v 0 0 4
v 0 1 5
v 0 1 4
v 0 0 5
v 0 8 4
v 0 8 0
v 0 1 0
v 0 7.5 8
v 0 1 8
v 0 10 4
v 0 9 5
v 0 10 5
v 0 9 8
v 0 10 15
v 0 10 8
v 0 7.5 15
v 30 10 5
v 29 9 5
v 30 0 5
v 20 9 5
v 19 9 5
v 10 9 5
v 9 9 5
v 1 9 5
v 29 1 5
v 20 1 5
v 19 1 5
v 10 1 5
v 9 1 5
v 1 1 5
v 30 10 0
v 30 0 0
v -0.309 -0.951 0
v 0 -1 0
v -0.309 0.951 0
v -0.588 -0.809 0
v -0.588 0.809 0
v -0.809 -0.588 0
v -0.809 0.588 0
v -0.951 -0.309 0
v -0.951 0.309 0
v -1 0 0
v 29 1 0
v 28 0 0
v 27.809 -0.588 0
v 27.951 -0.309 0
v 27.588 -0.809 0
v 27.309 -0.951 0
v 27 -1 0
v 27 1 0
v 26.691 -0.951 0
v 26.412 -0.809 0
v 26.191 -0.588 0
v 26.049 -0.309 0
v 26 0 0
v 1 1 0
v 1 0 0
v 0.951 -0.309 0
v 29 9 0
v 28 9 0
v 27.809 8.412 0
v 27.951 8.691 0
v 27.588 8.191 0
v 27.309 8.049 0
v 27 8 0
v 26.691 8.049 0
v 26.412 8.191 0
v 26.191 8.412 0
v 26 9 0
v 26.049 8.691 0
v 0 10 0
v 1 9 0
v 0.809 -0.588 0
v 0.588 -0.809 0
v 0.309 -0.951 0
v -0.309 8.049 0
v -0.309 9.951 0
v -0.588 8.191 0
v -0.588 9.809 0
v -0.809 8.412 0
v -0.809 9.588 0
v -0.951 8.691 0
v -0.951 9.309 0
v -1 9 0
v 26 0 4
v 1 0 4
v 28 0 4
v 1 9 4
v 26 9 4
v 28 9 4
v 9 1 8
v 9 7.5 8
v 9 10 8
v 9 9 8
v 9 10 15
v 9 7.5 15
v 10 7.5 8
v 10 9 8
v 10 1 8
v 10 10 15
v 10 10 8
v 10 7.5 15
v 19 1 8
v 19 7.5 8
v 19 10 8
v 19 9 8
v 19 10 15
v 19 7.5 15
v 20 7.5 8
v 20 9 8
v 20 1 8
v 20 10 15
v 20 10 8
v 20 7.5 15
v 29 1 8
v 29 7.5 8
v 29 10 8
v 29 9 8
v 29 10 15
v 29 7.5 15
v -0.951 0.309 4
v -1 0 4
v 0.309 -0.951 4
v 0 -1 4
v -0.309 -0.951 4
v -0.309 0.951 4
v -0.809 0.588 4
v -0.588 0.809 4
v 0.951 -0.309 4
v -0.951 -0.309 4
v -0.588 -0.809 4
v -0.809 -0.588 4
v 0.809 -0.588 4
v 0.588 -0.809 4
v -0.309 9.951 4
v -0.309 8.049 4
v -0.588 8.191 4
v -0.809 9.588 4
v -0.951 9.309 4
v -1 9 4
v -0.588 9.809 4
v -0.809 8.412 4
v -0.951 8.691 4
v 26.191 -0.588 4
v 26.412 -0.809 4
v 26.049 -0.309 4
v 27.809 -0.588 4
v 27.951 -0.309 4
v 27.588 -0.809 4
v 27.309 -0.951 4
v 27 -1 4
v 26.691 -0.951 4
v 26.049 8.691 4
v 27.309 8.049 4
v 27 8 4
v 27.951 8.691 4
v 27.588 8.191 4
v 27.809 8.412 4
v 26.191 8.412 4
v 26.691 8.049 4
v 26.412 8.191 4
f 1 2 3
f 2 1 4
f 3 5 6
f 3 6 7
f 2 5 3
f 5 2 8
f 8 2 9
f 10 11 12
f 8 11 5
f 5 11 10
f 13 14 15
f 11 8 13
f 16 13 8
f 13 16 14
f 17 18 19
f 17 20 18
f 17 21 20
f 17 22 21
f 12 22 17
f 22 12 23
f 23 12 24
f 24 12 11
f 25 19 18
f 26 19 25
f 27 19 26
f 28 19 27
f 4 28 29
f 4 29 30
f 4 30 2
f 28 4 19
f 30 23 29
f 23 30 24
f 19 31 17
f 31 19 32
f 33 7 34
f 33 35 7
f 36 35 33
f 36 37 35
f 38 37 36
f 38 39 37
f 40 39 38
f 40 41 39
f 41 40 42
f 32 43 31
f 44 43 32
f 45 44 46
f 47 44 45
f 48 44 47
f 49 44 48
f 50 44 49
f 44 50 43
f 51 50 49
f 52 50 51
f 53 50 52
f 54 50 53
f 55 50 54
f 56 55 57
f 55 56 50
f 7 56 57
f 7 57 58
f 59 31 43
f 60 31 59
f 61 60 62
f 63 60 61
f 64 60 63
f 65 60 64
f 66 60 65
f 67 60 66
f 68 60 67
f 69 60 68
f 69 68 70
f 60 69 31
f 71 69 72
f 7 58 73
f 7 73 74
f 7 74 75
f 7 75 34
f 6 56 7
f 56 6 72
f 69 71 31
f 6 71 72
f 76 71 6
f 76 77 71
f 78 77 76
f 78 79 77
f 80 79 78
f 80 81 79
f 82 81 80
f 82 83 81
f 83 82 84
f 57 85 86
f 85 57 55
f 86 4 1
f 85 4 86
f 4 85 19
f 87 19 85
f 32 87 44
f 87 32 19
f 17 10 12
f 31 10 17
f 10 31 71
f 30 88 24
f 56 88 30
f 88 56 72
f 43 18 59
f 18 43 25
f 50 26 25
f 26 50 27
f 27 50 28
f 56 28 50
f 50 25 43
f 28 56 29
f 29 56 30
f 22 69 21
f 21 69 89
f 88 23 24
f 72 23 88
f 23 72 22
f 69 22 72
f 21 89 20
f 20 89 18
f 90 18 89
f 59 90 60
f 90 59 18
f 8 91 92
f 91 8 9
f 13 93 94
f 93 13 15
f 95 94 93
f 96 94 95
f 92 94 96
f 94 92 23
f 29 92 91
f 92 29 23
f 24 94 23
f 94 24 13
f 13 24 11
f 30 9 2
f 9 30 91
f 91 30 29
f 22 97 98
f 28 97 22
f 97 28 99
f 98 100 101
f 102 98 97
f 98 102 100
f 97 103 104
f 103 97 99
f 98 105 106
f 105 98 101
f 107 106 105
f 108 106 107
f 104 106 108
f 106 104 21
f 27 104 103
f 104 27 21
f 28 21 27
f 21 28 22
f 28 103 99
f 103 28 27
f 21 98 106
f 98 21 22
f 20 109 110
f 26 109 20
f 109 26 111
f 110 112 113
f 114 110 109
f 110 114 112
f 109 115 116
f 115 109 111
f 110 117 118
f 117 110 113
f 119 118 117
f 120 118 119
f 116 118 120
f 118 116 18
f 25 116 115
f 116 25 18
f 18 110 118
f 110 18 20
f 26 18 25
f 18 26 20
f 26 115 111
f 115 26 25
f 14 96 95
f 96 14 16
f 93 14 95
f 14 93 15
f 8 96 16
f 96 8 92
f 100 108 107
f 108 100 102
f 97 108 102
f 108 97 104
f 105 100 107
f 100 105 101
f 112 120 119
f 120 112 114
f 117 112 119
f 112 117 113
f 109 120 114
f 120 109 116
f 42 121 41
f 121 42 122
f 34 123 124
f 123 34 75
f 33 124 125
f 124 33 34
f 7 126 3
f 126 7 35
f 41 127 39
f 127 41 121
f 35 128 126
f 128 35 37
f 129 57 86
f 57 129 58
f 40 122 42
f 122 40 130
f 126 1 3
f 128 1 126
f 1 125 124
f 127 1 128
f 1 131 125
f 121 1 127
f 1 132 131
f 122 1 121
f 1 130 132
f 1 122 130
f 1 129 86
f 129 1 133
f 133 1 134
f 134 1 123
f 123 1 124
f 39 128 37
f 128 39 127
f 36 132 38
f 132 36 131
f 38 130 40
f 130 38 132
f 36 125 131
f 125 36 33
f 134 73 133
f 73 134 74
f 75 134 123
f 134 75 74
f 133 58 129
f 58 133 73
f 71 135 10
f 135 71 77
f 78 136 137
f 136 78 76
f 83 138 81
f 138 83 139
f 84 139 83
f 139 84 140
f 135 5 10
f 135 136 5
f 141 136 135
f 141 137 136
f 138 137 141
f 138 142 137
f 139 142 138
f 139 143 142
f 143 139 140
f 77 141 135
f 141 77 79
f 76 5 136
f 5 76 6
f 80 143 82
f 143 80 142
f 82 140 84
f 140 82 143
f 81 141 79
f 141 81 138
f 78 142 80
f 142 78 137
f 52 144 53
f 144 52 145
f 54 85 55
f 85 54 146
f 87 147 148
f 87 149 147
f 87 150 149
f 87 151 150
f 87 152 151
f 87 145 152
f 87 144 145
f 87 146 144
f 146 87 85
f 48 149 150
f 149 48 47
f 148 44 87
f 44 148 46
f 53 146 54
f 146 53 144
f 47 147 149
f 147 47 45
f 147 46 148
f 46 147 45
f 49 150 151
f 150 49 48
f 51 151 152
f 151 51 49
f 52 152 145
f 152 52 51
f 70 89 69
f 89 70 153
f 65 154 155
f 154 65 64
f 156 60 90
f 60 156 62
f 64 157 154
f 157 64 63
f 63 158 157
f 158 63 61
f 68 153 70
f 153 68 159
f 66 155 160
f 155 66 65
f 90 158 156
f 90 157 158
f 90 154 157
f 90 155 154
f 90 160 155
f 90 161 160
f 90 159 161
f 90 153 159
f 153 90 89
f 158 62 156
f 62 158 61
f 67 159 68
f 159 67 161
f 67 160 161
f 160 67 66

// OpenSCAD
module couchFrame() {
    difference() {
        // Couch base
        cube([30, 10, 5]);

        // Carve out the bottom part for legs space
        translate([1, 1, -1]) cube([28, 8, 6]);
    }
}

module couchCushions() {
    // Seat cushions
    for (i = [0:2]) {
        translate([i*10, 1, 5]) cube([9, 8, 3]);
    }

    // Back cushions
    for (i = [0:2]) {
        translate([i*10, 7.5, 8]) cube([9, 2.5, 7]);
    }
}

module couchLegs() {
    // Legs of the couch
    for (i = [0:1]) {
        for (j = [0:1]) {
            translate([i*27, j*9, 0]) cylinder(h=4, r=1, $fn=20);
        }
    }
}

// Combine all parts to construct the complete couch
couchFrame();
couchCushions();
couchLegs();
